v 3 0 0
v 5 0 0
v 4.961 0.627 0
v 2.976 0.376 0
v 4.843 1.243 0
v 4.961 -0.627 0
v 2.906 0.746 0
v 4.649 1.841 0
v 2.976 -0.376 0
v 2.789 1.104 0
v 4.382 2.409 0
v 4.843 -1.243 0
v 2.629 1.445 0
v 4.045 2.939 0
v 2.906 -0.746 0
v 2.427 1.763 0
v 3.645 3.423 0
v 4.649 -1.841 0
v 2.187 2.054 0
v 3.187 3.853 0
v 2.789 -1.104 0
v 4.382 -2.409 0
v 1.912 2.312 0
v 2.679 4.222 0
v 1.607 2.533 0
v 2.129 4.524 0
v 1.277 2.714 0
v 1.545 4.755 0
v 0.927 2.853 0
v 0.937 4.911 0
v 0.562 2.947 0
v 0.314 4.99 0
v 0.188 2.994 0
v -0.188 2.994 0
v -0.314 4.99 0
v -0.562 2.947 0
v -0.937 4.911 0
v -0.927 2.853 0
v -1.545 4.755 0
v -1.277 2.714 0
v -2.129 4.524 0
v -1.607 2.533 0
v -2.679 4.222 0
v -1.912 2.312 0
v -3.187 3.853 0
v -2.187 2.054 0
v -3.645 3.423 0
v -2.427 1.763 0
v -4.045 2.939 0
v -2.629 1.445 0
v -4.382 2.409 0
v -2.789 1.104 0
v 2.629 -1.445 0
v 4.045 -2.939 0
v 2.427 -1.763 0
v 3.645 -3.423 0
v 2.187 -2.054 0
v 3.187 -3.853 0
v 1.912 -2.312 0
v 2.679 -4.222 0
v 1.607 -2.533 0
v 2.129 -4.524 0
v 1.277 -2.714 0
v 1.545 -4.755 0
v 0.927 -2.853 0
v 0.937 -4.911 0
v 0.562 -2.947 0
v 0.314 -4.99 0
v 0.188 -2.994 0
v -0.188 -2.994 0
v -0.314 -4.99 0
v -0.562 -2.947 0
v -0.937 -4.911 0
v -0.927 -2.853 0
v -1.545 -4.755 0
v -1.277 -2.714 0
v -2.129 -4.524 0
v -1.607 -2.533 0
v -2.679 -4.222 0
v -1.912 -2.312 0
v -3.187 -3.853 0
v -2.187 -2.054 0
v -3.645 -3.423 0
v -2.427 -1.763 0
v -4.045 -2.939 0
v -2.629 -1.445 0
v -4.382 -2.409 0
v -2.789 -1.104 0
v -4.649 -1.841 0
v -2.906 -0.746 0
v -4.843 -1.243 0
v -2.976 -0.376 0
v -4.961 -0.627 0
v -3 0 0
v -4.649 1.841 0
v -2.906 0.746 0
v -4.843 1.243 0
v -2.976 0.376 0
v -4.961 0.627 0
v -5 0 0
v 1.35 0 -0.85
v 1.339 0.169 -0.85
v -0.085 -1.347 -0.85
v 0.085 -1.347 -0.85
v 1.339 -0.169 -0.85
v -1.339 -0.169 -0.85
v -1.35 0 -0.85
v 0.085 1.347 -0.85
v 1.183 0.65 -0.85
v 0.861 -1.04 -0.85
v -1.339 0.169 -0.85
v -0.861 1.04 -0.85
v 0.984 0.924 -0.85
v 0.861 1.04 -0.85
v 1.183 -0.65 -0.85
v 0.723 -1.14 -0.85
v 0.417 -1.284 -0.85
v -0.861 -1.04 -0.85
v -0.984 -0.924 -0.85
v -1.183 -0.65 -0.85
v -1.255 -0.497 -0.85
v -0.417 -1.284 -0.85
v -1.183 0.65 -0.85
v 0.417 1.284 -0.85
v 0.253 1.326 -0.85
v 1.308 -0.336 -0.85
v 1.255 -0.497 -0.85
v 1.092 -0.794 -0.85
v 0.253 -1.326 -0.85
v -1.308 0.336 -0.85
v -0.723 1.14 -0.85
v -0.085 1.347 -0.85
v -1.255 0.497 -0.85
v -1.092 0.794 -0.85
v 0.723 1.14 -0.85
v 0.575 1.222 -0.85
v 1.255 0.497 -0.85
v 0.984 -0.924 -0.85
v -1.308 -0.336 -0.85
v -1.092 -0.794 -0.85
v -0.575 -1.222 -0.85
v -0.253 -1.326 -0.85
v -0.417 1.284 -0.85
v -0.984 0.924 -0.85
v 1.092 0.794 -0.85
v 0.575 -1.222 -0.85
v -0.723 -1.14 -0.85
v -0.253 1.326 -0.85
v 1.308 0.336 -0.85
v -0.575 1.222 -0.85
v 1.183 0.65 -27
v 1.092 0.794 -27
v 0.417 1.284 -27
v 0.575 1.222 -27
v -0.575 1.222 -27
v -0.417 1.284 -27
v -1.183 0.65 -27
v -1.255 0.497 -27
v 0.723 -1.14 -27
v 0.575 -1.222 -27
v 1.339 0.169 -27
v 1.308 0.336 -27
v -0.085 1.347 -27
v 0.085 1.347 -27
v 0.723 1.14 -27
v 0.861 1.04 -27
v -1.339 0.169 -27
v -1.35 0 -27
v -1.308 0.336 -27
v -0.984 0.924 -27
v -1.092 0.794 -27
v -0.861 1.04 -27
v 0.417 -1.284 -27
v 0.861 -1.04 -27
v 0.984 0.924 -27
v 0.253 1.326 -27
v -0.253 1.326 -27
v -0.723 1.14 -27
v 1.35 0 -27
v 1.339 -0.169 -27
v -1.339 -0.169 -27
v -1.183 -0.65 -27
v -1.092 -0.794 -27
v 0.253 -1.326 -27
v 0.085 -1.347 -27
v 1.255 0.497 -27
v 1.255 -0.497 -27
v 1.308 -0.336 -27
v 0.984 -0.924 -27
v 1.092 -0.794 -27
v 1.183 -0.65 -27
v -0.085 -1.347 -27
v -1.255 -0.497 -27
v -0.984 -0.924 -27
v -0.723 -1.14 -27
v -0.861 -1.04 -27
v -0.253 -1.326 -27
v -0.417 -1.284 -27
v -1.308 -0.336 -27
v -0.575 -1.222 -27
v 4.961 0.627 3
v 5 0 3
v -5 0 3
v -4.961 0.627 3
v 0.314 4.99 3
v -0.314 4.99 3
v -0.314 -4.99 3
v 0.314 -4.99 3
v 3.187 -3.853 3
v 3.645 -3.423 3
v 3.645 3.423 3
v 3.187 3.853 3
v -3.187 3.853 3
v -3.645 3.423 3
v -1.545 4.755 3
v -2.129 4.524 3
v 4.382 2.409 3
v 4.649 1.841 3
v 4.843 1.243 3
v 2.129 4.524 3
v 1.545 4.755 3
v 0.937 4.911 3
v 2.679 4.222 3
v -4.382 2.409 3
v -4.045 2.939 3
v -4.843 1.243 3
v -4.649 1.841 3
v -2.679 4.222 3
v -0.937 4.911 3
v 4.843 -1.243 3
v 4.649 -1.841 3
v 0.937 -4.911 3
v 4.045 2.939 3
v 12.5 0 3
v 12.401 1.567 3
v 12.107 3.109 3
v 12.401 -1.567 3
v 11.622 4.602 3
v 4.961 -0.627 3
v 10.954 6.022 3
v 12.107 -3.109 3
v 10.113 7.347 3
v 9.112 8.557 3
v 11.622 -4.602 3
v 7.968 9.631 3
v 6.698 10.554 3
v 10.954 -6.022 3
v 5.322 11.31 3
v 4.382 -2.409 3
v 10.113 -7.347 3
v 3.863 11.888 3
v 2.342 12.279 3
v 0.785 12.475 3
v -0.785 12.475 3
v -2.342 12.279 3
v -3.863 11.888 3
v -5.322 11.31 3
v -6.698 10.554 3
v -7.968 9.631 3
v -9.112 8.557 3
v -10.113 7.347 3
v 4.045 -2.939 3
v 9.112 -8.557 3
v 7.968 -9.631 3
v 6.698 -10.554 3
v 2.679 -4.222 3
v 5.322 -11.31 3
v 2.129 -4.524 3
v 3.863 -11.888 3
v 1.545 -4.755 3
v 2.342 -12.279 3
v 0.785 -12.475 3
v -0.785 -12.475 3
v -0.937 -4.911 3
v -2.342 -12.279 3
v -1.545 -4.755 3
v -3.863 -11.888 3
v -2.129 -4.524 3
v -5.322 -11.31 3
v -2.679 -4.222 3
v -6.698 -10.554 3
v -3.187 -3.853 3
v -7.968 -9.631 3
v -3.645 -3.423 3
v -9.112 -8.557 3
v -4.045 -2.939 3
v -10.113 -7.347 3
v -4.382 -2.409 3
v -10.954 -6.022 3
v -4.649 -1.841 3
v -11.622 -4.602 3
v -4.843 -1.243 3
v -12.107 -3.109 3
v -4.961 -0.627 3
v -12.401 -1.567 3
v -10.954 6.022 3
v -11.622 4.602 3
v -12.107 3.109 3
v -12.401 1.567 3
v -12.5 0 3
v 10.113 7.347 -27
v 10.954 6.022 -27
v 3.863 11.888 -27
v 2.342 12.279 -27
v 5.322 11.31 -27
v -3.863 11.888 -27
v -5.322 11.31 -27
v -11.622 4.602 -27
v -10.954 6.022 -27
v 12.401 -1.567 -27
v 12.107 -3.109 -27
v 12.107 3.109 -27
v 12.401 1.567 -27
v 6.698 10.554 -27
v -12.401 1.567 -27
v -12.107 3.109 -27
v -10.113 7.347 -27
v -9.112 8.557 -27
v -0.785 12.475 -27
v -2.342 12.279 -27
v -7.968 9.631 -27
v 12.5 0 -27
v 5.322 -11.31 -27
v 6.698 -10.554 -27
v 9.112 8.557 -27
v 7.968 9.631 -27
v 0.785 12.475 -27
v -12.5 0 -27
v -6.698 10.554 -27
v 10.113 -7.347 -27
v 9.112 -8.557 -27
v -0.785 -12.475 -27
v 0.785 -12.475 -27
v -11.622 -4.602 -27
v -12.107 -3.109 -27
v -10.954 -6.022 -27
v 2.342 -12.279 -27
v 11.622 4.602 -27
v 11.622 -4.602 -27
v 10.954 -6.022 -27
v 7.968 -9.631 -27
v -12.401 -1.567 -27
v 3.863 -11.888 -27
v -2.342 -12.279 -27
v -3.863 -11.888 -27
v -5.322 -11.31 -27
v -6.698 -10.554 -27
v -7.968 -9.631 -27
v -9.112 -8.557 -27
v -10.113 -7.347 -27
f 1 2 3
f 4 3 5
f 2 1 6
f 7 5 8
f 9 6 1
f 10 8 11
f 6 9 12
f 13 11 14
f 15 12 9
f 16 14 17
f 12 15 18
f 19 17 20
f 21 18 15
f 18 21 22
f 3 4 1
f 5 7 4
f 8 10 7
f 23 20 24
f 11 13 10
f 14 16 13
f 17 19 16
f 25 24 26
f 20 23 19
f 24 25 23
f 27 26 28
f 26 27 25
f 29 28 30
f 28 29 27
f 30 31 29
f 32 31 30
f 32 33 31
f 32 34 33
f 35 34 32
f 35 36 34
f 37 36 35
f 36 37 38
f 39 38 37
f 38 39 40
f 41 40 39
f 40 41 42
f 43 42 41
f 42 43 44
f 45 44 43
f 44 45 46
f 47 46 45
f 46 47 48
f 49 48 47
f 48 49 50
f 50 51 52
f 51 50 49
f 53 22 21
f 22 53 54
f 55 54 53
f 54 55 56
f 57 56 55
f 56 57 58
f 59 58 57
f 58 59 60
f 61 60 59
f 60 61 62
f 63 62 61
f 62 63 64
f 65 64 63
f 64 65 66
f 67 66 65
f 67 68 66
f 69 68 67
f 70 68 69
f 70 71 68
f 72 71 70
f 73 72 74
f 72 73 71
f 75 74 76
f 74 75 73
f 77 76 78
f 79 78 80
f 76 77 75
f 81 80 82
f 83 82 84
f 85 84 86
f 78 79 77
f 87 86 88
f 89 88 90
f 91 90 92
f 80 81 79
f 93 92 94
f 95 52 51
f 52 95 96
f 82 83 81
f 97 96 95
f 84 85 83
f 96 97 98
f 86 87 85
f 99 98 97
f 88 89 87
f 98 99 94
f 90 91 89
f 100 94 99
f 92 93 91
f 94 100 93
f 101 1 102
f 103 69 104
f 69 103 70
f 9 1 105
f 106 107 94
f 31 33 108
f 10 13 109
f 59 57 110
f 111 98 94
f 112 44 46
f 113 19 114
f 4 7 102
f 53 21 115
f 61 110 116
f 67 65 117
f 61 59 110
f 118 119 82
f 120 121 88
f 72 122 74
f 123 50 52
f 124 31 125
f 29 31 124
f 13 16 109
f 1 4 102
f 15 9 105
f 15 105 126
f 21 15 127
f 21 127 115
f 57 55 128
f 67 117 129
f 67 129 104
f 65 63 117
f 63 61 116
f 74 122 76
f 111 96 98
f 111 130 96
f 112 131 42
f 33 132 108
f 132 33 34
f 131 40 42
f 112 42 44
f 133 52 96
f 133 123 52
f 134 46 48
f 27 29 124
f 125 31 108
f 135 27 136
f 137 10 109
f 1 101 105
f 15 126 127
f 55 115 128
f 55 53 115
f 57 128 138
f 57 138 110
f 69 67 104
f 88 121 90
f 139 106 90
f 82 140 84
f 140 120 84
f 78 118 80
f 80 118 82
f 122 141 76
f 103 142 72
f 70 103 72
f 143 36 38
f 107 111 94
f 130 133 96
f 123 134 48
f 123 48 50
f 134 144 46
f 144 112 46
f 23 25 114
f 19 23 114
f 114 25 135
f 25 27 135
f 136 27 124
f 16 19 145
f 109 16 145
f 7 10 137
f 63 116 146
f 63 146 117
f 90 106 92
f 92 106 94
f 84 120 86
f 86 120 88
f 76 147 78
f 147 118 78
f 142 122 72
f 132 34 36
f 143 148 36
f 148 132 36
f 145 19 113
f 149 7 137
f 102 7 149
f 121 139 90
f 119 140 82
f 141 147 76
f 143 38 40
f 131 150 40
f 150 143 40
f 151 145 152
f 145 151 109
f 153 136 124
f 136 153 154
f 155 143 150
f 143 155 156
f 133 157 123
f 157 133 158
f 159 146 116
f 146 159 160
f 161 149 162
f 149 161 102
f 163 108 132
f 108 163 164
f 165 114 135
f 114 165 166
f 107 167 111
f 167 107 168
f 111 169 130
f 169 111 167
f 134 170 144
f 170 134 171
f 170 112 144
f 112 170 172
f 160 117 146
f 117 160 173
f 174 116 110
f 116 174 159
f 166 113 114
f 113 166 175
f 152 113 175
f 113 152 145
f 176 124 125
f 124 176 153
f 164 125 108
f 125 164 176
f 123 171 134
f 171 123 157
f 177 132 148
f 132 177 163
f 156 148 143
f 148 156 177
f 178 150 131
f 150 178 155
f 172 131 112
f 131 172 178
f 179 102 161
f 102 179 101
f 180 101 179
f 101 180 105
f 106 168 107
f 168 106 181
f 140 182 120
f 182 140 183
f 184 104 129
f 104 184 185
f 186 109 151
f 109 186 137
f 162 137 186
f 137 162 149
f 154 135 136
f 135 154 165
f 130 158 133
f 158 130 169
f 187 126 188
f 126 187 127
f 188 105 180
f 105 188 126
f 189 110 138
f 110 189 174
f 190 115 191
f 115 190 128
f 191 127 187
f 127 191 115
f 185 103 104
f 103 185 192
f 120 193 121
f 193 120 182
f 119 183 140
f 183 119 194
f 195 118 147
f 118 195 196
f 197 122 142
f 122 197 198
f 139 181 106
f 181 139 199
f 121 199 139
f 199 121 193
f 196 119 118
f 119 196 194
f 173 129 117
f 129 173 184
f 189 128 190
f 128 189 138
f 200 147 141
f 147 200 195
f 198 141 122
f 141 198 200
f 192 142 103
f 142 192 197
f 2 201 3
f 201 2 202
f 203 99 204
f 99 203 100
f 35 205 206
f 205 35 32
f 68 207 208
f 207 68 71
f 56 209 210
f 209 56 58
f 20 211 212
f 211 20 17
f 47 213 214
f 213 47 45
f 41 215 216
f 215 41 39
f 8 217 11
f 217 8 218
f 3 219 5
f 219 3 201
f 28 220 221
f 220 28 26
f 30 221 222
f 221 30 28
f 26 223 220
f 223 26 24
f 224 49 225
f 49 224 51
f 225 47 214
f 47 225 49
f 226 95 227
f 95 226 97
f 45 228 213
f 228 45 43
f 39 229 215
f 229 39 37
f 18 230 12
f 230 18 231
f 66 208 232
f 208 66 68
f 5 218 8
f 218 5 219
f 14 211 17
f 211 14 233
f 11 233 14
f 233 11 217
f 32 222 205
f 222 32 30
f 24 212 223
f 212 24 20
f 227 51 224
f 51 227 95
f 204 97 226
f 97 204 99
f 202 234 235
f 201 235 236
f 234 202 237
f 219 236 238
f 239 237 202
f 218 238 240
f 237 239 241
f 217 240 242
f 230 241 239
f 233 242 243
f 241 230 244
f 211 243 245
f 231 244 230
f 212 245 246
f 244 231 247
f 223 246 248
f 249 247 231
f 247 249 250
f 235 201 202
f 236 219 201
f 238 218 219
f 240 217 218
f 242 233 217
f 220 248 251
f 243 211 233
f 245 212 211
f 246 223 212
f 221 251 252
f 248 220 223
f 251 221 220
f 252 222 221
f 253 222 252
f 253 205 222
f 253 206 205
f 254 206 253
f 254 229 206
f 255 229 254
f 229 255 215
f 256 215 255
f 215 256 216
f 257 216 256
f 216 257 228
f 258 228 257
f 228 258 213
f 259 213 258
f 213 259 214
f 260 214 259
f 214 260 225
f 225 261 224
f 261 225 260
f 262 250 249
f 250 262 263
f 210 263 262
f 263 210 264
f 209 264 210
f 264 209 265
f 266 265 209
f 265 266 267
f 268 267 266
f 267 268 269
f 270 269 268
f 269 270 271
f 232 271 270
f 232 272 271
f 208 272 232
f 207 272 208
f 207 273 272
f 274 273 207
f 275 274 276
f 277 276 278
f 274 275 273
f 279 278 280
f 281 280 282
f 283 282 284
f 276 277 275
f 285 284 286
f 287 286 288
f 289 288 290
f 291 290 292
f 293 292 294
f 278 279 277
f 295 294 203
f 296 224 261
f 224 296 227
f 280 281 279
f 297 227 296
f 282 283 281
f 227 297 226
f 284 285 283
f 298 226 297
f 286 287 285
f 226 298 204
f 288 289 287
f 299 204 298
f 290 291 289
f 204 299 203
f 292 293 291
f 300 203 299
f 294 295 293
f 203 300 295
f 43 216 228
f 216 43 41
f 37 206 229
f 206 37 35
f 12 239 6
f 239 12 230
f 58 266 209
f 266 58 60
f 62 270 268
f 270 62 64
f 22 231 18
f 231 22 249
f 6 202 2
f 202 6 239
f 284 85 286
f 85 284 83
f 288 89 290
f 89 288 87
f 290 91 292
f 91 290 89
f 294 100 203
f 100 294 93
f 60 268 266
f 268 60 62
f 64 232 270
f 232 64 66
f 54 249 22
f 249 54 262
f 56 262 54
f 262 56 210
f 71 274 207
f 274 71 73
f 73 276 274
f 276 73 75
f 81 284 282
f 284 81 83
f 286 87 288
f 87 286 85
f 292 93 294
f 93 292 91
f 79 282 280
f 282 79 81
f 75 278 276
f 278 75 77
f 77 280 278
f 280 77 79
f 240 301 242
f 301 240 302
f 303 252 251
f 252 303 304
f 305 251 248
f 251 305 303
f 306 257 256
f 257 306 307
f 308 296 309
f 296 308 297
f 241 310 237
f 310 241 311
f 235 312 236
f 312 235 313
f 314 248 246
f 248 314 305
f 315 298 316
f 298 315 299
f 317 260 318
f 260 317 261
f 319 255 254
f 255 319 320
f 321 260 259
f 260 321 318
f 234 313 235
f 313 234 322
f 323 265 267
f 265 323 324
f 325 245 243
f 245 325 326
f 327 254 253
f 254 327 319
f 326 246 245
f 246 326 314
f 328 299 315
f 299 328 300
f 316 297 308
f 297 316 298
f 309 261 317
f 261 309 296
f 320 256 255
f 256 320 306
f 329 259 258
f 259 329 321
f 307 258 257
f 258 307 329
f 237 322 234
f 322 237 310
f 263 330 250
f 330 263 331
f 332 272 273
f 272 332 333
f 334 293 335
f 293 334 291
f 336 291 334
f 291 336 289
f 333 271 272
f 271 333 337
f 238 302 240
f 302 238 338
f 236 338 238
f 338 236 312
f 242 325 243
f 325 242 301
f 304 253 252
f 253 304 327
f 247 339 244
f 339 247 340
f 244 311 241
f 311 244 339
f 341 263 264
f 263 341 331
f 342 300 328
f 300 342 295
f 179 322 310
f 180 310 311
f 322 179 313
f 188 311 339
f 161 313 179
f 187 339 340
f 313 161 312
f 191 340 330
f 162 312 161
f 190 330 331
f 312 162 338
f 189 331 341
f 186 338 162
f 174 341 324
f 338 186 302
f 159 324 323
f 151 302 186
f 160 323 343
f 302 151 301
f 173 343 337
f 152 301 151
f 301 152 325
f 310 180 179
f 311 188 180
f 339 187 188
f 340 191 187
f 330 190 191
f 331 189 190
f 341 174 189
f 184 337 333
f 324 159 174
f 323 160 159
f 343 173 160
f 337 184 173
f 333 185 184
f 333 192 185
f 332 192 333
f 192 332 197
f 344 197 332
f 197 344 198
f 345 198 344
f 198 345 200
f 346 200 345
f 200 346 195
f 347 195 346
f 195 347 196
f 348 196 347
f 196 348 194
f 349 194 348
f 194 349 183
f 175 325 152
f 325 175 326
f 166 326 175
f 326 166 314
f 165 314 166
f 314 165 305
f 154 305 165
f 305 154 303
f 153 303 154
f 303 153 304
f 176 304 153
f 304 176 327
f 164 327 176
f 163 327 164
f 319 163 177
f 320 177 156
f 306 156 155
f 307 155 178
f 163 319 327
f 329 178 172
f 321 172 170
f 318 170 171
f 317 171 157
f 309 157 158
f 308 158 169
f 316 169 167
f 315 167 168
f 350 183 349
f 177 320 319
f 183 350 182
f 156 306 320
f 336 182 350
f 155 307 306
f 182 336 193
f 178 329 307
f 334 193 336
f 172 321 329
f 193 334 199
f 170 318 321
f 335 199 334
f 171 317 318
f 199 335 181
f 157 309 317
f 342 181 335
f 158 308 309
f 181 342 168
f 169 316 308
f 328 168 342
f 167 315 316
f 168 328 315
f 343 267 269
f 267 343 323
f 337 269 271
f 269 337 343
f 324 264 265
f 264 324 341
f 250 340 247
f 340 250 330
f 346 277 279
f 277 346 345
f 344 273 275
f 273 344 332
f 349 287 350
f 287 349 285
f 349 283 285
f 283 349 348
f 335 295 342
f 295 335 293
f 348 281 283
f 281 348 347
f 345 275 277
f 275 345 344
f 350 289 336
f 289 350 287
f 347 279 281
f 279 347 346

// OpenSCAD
$fn = 50;


difference() {
	union() {
		translate(v = [0, 0, -27.0000000000]) {
			cylinder(h = 30, r = 12.5000000000);
		}
	}
	union() {
		translate(v = [0, 0, 0]) {
			rotate(a = [0, 0, 0]) {
				difference() {
					union() {
						translate(v = [0, 0, -30.0000000000]) {
							cylinder(h = 30, r = 1.0000000000);
						}
						translate(v = [0, 0, -0.8500000000]) {
							cylinder(h = 0.8500000000, r1 = 1.3500000000, r2 = 3.0000000000);
						}
						translate(v = [0, 0, -30.0000000000]) {
							cylinder(h = 30, r = 1.3500000000);
						}
						translate(v = [0, 0, -30.0000000000]) {
							cylinder(h = 30, r = 1.0000000000);
						}
					}
					union();
				}
			}
		}
		#cylinder(h = 3, r = 5.0000000000);
	}
}
